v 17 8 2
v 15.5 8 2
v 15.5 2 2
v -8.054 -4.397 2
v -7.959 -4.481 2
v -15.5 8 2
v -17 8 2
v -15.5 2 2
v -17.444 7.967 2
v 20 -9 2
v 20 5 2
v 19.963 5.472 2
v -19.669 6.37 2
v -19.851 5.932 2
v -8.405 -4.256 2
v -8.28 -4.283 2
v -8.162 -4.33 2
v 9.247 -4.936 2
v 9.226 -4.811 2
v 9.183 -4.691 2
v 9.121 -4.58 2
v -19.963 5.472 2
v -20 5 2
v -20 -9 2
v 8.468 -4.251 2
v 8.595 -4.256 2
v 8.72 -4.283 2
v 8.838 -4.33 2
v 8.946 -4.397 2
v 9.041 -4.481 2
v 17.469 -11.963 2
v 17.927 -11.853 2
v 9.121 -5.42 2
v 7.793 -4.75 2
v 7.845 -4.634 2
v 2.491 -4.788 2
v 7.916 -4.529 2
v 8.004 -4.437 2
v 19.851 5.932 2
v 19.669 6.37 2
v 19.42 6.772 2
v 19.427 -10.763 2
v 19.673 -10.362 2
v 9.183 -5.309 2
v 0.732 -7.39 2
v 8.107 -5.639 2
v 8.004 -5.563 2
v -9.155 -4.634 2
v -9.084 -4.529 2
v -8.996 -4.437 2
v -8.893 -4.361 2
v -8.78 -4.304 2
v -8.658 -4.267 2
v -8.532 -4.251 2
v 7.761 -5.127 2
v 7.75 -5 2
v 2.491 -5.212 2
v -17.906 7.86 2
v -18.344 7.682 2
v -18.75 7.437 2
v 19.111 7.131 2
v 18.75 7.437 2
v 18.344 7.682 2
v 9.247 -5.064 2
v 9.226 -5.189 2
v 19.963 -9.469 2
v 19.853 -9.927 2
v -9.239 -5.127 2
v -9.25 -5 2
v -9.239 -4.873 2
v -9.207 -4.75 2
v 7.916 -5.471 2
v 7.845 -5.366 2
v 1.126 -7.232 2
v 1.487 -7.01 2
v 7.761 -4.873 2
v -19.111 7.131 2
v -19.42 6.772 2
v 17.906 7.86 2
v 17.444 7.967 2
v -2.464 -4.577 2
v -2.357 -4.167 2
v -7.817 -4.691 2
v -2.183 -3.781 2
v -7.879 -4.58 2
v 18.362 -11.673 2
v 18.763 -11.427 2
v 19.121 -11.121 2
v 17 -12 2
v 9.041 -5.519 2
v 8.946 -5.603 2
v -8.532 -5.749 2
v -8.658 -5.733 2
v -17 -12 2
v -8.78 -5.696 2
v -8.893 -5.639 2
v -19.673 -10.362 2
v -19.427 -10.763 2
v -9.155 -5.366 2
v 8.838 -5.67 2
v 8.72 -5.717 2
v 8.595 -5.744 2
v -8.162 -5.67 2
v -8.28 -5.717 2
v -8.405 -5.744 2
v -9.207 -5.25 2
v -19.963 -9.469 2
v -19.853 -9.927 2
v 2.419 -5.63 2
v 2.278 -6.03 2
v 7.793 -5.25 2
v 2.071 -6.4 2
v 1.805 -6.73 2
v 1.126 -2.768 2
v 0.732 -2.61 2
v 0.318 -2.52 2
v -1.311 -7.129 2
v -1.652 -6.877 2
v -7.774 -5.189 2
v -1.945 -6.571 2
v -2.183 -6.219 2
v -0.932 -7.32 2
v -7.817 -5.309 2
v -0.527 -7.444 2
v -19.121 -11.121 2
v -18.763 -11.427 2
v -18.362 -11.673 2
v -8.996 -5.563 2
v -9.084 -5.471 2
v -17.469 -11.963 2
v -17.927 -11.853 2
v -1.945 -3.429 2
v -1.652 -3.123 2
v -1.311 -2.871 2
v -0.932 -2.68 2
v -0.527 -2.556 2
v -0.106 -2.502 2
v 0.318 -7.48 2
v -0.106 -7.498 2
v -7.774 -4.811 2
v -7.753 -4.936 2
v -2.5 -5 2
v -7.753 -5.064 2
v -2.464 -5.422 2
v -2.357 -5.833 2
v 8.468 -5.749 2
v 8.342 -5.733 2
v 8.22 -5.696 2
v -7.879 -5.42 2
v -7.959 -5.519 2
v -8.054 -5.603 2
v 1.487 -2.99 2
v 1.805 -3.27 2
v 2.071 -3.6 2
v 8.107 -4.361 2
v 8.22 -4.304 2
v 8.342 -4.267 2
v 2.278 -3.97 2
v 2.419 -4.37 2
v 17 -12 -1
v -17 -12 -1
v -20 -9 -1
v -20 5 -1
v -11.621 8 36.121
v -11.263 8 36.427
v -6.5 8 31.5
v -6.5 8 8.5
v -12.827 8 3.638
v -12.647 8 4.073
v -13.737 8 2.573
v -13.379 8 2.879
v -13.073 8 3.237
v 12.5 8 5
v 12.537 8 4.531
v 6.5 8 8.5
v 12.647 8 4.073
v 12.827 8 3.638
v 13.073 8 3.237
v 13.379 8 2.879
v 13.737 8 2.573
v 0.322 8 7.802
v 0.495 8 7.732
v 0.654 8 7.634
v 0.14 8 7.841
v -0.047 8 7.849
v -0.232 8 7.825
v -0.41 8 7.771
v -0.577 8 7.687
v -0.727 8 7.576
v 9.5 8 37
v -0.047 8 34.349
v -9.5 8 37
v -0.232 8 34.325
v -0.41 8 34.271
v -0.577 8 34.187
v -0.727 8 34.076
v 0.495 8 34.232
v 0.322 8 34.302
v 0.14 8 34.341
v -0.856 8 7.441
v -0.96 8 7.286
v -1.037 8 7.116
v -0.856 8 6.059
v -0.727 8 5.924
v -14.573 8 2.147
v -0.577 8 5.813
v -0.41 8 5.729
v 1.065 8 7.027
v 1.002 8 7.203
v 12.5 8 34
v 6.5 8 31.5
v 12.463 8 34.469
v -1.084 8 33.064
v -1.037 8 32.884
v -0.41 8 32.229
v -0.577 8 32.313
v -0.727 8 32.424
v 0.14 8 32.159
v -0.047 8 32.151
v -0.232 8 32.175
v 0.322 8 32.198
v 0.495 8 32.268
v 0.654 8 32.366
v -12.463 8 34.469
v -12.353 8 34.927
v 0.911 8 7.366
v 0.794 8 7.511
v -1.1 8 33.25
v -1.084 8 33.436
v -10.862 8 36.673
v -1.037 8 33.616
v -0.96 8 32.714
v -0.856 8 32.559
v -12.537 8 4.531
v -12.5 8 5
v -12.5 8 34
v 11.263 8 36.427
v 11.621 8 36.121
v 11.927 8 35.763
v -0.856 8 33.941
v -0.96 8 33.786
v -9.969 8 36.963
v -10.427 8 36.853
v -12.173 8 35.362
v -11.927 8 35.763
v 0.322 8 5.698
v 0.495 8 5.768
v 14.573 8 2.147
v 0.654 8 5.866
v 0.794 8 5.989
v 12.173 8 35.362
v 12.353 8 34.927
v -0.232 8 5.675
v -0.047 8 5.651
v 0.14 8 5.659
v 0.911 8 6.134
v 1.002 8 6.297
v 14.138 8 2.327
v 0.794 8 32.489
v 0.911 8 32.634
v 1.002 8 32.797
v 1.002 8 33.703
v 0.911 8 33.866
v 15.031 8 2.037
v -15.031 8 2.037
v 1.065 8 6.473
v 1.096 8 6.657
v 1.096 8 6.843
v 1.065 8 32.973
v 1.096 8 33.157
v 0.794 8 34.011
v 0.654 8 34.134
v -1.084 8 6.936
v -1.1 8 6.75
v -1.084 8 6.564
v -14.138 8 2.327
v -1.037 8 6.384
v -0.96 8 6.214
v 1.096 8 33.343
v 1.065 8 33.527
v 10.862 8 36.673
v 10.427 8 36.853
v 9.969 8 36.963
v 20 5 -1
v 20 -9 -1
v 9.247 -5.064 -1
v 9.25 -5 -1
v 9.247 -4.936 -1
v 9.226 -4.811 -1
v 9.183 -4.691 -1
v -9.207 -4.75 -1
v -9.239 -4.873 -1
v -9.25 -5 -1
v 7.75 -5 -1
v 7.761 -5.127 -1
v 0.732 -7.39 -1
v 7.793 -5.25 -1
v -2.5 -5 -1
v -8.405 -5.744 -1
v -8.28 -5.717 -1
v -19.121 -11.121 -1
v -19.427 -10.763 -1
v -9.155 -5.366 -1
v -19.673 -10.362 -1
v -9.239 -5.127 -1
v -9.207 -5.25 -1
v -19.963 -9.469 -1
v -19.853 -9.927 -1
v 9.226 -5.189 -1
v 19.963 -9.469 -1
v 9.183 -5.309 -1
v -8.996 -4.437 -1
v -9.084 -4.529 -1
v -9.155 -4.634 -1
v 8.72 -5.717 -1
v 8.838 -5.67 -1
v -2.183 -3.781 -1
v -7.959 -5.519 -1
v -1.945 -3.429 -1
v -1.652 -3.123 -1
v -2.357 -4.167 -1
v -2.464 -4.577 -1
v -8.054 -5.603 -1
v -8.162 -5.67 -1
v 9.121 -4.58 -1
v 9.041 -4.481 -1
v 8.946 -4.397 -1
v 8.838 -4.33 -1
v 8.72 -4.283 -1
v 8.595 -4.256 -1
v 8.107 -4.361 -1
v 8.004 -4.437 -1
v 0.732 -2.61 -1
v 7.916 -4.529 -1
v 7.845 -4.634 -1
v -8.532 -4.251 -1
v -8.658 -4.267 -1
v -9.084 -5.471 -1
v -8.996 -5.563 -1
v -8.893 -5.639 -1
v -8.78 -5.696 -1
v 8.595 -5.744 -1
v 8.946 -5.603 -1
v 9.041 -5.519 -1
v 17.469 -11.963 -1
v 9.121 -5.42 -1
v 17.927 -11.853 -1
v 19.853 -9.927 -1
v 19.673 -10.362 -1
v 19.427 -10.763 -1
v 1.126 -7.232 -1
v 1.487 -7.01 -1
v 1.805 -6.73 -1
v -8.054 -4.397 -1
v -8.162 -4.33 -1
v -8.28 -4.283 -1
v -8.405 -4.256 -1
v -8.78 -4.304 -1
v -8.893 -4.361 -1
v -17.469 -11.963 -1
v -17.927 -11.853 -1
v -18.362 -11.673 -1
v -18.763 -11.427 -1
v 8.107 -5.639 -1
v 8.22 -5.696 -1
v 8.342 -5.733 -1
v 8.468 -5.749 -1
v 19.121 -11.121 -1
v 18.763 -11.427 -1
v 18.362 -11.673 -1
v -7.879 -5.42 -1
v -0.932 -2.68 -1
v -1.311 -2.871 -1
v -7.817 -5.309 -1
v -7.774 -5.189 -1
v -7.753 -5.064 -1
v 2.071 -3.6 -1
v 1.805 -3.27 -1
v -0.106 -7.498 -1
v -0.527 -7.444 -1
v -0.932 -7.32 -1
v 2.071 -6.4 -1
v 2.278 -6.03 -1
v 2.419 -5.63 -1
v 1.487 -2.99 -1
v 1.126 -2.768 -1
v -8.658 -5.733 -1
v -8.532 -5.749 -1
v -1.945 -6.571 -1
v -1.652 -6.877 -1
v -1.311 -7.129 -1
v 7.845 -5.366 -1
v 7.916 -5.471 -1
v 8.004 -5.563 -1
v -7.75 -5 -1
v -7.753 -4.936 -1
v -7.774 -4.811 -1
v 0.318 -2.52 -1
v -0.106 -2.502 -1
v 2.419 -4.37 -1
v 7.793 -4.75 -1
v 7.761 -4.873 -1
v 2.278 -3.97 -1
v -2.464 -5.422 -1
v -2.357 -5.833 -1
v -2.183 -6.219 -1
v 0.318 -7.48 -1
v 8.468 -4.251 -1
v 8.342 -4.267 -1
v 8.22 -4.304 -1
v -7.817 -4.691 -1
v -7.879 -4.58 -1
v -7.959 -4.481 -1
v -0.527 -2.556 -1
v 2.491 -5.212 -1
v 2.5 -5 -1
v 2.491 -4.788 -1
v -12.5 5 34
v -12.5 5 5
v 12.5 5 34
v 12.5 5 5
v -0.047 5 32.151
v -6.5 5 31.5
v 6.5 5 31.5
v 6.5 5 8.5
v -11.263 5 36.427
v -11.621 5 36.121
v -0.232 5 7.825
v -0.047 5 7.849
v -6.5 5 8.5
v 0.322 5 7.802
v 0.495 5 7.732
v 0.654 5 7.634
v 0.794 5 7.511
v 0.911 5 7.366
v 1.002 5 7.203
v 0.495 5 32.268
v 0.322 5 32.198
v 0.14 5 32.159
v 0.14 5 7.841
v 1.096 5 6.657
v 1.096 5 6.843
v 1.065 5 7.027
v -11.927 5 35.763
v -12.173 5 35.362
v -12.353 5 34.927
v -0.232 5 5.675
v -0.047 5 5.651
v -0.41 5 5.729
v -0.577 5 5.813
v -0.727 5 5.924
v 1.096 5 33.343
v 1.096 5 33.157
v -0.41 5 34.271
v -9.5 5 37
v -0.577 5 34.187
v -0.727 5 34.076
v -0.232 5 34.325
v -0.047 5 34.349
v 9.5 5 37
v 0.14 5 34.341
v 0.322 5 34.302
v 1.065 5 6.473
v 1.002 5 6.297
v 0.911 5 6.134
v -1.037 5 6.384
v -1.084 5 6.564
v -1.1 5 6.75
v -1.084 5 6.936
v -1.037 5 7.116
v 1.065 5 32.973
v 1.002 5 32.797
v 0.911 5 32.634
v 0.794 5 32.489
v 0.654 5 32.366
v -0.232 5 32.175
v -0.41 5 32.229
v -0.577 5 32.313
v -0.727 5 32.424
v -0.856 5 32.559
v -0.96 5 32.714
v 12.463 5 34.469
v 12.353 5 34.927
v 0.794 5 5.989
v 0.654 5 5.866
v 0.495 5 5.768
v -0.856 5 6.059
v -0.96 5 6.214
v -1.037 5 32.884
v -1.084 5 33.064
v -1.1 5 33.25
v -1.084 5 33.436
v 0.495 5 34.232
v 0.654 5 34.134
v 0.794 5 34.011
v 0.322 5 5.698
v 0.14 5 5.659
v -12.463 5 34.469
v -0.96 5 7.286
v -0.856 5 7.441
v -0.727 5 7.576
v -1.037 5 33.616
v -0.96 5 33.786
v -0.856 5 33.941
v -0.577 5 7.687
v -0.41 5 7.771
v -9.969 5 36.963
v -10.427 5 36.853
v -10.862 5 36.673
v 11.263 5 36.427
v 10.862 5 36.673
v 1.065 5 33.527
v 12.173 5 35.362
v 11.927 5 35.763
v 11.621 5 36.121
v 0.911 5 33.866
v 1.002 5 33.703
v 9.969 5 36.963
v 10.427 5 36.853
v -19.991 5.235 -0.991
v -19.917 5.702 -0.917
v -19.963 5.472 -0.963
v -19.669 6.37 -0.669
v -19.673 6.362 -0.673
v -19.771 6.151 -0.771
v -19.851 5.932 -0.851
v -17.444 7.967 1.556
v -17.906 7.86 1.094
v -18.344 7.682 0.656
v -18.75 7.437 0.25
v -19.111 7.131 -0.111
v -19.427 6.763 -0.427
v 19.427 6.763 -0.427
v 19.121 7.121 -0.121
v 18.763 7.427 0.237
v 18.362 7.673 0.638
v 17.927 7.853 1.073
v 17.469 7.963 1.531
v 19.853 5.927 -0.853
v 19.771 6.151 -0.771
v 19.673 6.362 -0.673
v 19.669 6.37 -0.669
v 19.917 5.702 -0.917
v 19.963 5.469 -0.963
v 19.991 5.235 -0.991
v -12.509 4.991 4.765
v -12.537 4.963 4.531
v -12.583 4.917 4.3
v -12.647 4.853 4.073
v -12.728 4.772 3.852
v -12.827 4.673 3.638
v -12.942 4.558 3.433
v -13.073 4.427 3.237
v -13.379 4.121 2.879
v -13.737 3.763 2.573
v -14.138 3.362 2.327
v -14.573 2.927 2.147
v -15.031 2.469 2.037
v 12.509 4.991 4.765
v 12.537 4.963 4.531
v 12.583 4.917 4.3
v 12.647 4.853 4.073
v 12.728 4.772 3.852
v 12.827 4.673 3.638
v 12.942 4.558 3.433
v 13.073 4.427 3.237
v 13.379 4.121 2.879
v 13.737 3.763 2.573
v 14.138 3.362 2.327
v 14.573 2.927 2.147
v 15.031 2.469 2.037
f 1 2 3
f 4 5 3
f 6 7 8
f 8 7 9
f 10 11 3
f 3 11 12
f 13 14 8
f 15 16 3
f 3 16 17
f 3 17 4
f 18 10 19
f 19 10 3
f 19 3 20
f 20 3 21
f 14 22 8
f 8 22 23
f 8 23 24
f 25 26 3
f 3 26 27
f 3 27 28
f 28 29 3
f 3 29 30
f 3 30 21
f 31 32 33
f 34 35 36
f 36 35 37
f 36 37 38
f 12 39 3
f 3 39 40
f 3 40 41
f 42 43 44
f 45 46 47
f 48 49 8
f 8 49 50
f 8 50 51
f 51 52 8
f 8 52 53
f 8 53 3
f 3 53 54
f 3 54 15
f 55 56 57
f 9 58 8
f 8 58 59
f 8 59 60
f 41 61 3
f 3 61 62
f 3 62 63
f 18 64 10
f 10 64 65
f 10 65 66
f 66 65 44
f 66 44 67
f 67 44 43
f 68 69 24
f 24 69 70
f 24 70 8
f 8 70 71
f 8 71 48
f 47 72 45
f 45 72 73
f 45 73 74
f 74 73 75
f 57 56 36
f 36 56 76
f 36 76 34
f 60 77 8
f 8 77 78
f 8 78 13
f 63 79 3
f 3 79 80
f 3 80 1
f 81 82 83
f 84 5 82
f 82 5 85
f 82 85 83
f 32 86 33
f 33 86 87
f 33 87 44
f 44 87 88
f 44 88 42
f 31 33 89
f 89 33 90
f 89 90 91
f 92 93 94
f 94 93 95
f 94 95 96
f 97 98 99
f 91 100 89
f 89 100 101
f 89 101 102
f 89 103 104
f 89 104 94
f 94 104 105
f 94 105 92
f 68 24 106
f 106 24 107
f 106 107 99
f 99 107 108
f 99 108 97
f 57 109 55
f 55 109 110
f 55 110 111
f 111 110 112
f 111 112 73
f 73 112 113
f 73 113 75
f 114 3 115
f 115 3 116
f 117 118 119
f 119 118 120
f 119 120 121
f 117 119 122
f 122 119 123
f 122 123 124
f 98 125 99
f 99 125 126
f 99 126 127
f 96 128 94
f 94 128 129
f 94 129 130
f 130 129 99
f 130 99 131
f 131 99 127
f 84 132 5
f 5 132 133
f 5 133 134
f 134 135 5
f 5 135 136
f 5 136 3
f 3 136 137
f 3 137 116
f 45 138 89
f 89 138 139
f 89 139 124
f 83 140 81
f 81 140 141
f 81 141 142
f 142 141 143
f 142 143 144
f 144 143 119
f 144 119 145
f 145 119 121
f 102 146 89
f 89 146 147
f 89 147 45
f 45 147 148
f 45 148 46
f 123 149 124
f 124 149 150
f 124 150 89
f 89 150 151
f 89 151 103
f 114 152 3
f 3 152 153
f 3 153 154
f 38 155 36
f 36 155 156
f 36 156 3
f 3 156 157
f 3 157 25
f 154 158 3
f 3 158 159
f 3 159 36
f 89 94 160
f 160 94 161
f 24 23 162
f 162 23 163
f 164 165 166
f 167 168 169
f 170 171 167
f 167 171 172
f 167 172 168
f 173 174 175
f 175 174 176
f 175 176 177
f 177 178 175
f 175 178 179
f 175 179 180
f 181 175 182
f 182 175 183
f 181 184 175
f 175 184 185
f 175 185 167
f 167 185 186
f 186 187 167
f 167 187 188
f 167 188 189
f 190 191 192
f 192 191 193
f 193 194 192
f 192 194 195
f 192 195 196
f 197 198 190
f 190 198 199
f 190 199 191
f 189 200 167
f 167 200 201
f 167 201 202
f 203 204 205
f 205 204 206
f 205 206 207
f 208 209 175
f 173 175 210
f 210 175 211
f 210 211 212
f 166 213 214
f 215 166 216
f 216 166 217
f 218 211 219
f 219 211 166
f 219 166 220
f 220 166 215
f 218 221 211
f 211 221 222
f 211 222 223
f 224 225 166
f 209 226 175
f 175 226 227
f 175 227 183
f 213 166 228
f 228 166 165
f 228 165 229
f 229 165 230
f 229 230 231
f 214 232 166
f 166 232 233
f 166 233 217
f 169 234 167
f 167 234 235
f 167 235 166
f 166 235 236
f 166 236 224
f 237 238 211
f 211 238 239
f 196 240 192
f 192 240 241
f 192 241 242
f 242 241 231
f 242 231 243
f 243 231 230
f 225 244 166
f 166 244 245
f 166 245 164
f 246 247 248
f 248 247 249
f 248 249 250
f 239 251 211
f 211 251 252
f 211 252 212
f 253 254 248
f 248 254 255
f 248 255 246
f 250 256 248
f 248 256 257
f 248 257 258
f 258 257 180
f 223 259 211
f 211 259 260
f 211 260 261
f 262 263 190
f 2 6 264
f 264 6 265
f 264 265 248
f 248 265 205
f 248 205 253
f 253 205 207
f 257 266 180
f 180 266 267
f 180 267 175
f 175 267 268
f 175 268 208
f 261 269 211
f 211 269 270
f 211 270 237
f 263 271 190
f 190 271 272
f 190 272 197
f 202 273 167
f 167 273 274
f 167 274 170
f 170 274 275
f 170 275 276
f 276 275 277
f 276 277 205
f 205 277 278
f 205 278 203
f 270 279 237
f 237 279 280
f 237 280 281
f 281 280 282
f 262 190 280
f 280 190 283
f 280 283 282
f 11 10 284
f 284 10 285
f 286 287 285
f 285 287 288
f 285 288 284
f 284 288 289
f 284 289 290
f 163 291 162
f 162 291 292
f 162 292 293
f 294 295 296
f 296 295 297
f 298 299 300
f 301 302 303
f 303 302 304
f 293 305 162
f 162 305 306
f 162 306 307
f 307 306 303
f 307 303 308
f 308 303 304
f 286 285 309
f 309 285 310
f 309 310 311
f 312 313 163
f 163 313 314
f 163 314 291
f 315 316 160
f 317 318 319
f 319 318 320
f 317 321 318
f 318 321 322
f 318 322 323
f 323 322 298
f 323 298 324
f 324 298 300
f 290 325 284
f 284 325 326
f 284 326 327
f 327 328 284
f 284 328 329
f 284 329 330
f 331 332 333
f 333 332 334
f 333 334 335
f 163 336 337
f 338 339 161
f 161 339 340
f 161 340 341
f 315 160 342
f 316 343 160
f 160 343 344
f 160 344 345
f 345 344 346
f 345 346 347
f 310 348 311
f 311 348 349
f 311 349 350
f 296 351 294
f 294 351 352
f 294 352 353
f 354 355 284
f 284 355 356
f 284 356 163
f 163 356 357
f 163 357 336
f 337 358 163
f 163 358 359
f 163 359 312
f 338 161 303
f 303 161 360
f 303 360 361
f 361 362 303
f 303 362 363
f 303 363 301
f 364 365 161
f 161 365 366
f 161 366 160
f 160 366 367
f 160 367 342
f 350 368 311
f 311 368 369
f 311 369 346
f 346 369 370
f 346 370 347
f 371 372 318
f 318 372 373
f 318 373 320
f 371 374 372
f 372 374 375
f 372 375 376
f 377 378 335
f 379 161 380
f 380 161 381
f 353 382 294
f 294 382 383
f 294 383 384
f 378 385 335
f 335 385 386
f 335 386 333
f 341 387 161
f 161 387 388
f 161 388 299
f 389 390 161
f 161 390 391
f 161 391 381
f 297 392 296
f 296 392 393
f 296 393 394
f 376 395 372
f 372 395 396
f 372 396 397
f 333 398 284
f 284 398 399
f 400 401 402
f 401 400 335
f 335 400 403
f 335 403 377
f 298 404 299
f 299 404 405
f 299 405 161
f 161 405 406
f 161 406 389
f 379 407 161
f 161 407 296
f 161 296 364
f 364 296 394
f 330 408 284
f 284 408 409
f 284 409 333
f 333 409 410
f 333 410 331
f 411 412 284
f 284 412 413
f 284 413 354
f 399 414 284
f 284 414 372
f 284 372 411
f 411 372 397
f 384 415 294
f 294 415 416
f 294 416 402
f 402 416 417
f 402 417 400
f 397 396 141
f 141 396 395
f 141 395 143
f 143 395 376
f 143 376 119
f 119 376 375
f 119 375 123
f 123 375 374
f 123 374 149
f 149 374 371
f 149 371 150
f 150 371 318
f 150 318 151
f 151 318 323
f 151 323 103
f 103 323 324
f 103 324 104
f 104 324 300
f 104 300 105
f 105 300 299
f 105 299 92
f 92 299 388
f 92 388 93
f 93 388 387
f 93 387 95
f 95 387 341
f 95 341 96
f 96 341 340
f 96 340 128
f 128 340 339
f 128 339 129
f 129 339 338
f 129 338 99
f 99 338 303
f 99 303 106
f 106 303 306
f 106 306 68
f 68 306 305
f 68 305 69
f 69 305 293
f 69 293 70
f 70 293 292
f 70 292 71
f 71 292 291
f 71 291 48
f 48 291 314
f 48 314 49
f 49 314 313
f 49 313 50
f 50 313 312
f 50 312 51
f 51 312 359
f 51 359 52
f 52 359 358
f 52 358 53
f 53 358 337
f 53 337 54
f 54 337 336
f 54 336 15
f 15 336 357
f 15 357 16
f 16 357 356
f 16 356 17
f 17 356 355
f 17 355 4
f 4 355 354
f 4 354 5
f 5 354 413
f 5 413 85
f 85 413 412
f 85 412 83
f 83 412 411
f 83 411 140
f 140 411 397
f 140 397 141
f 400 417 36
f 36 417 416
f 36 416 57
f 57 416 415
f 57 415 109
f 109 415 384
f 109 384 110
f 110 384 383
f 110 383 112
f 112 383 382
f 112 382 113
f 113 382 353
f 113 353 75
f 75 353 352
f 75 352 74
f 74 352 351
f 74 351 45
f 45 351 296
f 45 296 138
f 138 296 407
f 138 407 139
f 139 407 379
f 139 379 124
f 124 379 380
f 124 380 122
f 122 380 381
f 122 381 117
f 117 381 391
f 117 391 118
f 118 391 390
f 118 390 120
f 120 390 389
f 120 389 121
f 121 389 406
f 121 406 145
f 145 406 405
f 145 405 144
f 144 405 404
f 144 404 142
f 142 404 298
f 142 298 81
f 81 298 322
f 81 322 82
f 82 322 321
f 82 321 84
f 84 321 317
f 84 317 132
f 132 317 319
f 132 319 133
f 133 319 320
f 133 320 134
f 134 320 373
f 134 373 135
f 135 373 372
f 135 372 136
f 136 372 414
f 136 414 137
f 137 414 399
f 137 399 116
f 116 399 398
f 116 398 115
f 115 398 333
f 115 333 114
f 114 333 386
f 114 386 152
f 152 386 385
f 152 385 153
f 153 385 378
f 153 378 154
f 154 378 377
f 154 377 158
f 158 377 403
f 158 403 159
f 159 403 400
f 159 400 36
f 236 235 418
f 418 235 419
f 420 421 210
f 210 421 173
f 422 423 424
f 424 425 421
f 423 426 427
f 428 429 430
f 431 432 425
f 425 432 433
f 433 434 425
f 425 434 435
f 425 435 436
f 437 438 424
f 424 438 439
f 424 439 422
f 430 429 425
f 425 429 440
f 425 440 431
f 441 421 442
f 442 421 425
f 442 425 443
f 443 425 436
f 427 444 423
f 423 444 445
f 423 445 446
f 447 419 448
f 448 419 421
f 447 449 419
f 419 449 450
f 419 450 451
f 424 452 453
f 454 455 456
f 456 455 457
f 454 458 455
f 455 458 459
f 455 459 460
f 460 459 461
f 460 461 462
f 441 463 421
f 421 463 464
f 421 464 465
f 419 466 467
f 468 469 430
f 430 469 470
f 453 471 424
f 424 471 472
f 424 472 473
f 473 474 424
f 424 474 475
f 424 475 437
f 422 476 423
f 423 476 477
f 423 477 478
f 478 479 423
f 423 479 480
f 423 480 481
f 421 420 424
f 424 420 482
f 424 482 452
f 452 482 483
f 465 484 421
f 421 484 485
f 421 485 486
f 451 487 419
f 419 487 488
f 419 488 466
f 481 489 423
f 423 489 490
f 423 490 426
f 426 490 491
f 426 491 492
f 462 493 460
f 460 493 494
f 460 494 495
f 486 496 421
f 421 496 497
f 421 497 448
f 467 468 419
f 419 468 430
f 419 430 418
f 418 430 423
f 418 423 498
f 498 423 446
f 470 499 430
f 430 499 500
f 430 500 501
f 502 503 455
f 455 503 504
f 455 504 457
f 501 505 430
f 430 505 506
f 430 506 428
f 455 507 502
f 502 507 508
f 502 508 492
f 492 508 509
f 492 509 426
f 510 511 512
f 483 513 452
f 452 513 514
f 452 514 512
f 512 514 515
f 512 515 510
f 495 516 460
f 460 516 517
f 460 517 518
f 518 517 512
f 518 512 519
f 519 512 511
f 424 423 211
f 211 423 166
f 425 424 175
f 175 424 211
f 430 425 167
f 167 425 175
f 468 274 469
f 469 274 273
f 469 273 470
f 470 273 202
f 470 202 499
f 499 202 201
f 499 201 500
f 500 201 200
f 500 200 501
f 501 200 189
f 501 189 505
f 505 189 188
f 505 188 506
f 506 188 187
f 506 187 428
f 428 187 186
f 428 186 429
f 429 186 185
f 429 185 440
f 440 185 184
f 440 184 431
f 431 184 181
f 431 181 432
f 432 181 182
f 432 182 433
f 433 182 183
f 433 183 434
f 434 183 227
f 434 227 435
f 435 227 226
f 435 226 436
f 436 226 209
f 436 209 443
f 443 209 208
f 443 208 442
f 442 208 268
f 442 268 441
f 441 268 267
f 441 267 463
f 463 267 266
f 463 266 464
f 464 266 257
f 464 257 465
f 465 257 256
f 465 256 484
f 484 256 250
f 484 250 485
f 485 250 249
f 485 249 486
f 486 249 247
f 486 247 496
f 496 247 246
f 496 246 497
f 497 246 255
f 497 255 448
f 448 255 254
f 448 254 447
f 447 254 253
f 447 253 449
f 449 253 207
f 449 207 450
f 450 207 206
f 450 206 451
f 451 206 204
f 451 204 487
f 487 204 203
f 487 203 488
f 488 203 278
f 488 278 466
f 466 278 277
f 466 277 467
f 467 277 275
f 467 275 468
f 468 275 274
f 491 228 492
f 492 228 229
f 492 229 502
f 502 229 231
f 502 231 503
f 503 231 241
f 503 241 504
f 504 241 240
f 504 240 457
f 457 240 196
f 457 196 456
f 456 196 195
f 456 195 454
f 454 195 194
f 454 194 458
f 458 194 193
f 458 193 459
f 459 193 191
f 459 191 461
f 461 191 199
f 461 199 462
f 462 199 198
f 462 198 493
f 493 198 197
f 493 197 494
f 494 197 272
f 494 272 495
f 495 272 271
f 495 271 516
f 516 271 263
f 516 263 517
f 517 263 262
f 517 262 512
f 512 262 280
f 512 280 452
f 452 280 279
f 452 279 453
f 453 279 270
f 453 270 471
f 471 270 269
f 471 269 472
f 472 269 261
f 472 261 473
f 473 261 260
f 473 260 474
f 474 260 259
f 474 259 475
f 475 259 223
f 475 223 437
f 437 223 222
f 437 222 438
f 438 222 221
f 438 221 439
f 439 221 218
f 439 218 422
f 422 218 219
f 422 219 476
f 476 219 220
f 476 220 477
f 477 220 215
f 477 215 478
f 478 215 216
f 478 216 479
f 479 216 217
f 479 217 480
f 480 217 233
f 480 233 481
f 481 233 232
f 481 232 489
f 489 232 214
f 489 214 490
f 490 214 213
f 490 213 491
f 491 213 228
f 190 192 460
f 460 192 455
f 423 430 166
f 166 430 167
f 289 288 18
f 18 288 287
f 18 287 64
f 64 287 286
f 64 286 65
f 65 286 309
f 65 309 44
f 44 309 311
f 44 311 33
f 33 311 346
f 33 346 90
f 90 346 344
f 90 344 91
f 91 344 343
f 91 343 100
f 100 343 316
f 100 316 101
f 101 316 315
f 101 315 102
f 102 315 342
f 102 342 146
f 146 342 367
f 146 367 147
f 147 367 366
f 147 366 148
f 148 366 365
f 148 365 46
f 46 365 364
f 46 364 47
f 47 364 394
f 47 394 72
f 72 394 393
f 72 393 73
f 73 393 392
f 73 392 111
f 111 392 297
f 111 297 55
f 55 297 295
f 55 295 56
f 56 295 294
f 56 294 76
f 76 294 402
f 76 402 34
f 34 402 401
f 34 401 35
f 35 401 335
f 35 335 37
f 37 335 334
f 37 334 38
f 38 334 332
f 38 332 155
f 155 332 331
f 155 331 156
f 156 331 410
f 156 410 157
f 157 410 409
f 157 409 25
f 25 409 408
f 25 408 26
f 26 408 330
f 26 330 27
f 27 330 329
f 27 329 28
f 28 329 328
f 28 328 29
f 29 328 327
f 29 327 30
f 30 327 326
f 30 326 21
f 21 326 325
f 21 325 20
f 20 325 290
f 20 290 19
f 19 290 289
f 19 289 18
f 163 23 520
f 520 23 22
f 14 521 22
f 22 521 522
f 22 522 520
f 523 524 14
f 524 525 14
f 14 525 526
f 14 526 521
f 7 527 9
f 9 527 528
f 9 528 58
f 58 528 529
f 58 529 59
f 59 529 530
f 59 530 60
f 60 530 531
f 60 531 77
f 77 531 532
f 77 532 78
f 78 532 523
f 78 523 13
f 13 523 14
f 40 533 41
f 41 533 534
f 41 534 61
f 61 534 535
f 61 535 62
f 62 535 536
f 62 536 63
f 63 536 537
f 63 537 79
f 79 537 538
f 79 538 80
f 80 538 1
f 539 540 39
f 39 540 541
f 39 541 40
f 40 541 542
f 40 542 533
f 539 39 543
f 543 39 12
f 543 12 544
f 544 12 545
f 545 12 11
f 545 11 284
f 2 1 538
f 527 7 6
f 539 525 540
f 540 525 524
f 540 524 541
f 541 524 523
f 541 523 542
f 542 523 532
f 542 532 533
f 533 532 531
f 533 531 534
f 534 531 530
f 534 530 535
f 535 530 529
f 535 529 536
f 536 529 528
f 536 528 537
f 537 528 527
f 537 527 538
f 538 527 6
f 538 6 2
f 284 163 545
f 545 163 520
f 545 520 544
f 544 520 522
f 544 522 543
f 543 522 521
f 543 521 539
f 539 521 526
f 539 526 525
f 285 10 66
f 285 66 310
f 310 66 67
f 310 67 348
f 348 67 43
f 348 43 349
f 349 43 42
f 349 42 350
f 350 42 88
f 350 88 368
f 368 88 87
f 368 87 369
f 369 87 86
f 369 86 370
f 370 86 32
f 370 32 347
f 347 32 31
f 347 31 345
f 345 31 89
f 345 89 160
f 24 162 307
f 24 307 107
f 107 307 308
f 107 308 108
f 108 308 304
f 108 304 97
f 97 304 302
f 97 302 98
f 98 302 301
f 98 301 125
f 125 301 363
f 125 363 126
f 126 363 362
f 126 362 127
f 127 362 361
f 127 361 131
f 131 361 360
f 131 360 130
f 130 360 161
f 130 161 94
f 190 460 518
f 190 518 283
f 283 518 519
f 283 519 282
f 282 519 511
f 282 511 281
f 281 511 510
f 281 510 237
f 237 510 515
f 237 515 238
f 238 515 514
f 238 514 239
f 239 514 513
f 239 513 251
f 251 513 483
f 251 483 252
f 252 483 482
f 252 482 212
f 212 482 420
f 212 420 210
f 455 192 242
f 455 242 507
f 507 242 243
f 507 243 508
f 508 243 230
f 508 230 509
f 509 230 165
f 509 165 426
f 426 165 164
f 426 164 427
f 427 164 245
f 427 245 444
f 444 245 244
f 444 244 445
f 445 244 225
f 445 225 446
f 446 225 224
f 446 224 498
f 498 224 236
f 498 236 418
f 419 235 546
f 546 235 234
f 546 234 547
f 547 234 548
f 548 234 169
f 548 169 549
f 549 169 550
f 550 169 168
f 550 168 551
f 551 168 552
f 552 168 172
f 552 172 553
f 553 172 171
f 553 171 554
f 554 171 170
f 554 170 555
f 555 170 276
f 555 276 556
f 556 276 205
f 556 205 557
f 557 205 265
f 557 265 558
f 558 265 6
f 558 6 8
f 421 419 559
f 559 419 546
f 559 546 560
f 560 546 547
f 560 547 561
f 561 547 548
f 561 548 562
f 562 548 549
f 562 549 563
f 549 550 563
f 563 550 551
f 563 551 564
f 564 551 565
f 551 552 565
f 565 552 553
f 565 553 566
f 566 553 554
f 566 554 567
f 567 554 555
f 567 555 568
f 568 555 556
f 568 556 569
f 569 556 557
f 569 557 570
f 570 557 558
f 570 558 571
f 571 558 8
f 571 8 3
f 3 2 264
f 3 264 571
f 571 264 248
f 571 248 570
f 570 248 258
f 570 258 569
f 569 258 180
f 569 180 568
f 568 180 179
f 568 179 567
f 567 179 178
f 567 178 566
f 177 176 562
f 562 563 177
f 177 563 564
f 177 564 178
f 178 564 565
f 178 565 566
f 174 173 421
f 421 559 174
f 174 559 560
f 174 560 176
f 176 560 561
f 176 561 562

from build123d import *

# Parameters (mm, degrees)
ESBO_O1_W                         = 40
ESBO_O1_H                         = 20
RESSALTO_EXTRUS_O1_DEPTH          = 1
ESBO_O3_W                         = 40
ESBO_O3_H                         = 20
RESSALTO_EXTRUS_O2_DEPTH          = 2
CORTE_EXTRUS_O1_REACH             = 25.409
ESBO_O2_R                         = 2.5
ESBO_O2_R_2                       = 0.75
CORTE_EXTRUS_O1_DIRECTION_2_REACH = 25.409
ESBO_O4_W                         = 25
ESBO_O4_H                         = 35
ESBO_O4_R                         = 1.1
ESBO_O4_W_2                       = 13
ESBO_O4_H_2                       = 23
ESBO_O4_H_3                       = 3
RESSALTO_EXTRUS_O3_DEPTH          = 3
FILLET2_R                         = 3


with BuildPart() as part:
    # Esboço1 → Ressalto-extrusão1 (new body)
    with BuildSketch(Plane.XY):
        with Locations((0, -2)):
            Rectangle(ESBO_O1_W, ESBO_O1_H)
    extrude(amount=-RESSALTO_EXTRUS_O1_DEPTH)

    # Esboço3 → Ressalto-extrusão2 (add)
    with BuildSketch(Plane.XY):
        with Locations((0, -2)):
            Rectangle(ESBO_O3_W, ESBO_O3_H)
    extrude(amount=RESSALTO_EXTRUS_O2_DEPTH)

    # Corte-extrusão1: up to this face of the body (flat: up to its plane)
    corte_extrus_o1_end = Plane(part.part.faces().sort_by_distance((0, -2, 2))[0])
    # Esboço2 → Corte-extrusão1 (cut, up to the picked face)
    with BuildSketch(Plane.XY, mode=Mode.PRIVATE) as corte_extrus_o1_sk1:
        with Locations(Location((0, -5, 0), (0, 0, 180))):
            Circle(ESBO_O2_R)
    corte_extrus_o1_tool1 = split(extrude(corte_extrus_o1_sk1.sketch, amount=CORTE_EXTRUS_O1_REACH, mode=Mode.PRIVATE), bisect_by=corte_extrus_o1_end, keep=Keep.BOTH, mode=Mode.PRIVATE)
    # Esboço2 → Corte-extrusão1 (cut, up to the picked face)
    with BuildSketch(Plane.XY, mode=Mode.PRIVATE) as corte_extrus_o1_sk2:
        with Locations(Location((-8.5, -5, 0), (0, 0, 180))):
            Circle(ESBO_O2_R_2)
    corte_extrus_o1_tool2 = split(extrude(corte_extrus_o1_sk2.sketch, amount=CORTE_EXTRUS_O1_REACH, mode=Mode.PRIVATE), bisect_by=corte_extrus_o1_end, keep=Keep.BOTH, mode=Mode.PRIVATE)
    corte_extrus_o1_1 = corte_extrus_o1_tool1.solids().sort_by(Axis((0, -5, 0), (0, 0, 1)))[0]
    add(corte_extrus_o1_1, mode=Mode.SUBTRACT)
    corte_extrus_o1_2 = corte_extrus_o1_tool2.solids().sort_by(Axis((-8.5, -5, 0), (0, 0, 1)))[0]
    add(corte_extrus_o1_2, mode=Mode.SUBTRACT)
    corte_extrus_o1 = corte_extrus_o1_1 + corte_extrus_o1_2  # Corte-extrusão1 as one shape, for the pattern or mirror that repeats it

    # Corte-extrusão1 direction 2: up to this face of the body (flat: up to its plane)
    corte_extrus_o1_direction_2_end = Plane(part.part.faces().sort_by_distance((0, -2, -1))[0])
    # Esboço2 → Corte-extrusão1 direction 2 (cut, up to the picked face)
    with BuildSketch(Plane.XY, mode=Mode.PRIVATE) as corte_extrus_o1_direction_2_sk1:
        with Locations(Location((0, -5, 0), (0, 0, 180))):
            Circle(ESBO_O2_R)
    corte_extrus_o1_direction_2_tool1 = split(extrude(corte_extrus_o1_direction_2_sk1.sketch, amount=-CORTE_EXTRUS_O1_DIRECTION_2_REACH, mode=Mode.PRIVATE), bisect_by=corte_extrus_o1_direction_2_end, keep=Keep.BOTH, mode=Mode.PRIVATE)
    # Esboço2 → Corte-extrusão1 direction 2 (cut, up to the picked face)
    with BuildSketch(Plane.XY, mode=Mode.PRIVATE) as corte_extrus_o1_direction_2_sk2:
        with Locations(Location((-8.5, -5, 0), (0, 0, 180))):
            Circle(ESBO_O2_R_2)
    corte_extrus_o1_direction_2_tool2 = split(extrude(corte_extrus_o1_direction_2_sk2.sketch, amount=-CORTE_EXTRUS_O1_DIRECTION_2_REACH, mode=Mode.PRIVATE), bisect_by=corte_extrus_o1_direction_2_end, keep=Keep.BOTH, mode=Mode.PRIVATE)
    corte_extrus_o1_direction_2_1 = corte_extrus_o1_direction_2_tool1.solids().sort_by(Axis((0, -5, 0), (0, 0, -1)))[0]
    add(corte_extrus_o1_direction_2_1, mode=Mode.SUBTRACT)
    corte_extrus_o1_direction_2_2 = corte_extrus_o1_direction_2_tool2.solids().sort_by(Axis((-8.5, -5, 0), (0, 0, -1)))[0]
    add(corte_extrus_o1_direction_2_2, mode=Mode.SUBTRACT)
    corte_extrus_o1_direction_2 = corte_extrus_o1_direction_2_1 + corte_extrus_o1_direction_2_2  # Corte-extrusão1 direction 2 as one shape, for the pattern or mirror that repeats it

    # Esboço4 → Ressalto-extrusão3 (add)
    # profile 1 of 2: a face of its own
    with BuildSketch(Plane(origin=(0, 8, 0), x_dir=(1, 0, 0), z_dir=(0, 1, 0))):
        with Locations((0, -19.5)):
            Rectangle(ESBO_O4_W, ESBO_O4_H)
        with Locations(Location((0, -33.25, 0), (0, 0, 180))):
            Circle(ESBO_O4_R, mode=Mode.SUBTRACT)
        with Locations((0, -20)):
            Rectangle(ESBO_O4_W_2, ESBO_O4_H_2, mode=Mode.SUBTRACT)
        with Locations(Location((0, -6.75, 0), (0, 0, 180))):
            Circle(ESBO_O4_R, mode=Mode.SUBTRACT)
    # profile 2 of 2: a face of its own
    with BuildSketch(Plane(origin=(0, 8, 0), x_dir=(1, 0, 0), z_dir=(0, 1, 0))):
        with Locations((0, -0.5)):
            Rectangle(ESBO_O4_W, ESBO_O4_H_3)
    extrude(amount=-RESSALTO_EXTRUS_O3_DEPTH)

    # Mirror1: Corte-extrusão1, Corte-extrusão1 direction 2 across plane
    add(corte_extrus_o1.mirror(Plane(origin=(0, 0, 0), x_dir=(0, 0, 1), z_dir=(1, 0, 0))), mode=Mode.SUBTRACT)
    add(corte_extrus_o1_direction_2.mirror(Plane(origin=(0, 0, 0), x_dir=(0, 0, 1), z_dir=(1, 0, 0))), mode=Mode.SUBTRACT)

    # Fillet2
    fillet2_edges = [part.edges().sort_by_distance(p)[0] for p in [
        (0, 8, -1),
        (0, 5, 2),
        (12.5, 6.5, 2),
        (-12.5, 6.5, 2),
        (-12.5, 6.5, 37),
        (12.5, 6.5, 37),
        (-20, -12, 0.5),
        (-20, 8, 0.5),
        (20, 8, 0.5),
        (20, -12, 0.5),
    ]]
    fillet(fillet2_edges, radius=FILLET2_R - 0.0001)  # a hair under: the kernel refuses the full size


solid = part.part
